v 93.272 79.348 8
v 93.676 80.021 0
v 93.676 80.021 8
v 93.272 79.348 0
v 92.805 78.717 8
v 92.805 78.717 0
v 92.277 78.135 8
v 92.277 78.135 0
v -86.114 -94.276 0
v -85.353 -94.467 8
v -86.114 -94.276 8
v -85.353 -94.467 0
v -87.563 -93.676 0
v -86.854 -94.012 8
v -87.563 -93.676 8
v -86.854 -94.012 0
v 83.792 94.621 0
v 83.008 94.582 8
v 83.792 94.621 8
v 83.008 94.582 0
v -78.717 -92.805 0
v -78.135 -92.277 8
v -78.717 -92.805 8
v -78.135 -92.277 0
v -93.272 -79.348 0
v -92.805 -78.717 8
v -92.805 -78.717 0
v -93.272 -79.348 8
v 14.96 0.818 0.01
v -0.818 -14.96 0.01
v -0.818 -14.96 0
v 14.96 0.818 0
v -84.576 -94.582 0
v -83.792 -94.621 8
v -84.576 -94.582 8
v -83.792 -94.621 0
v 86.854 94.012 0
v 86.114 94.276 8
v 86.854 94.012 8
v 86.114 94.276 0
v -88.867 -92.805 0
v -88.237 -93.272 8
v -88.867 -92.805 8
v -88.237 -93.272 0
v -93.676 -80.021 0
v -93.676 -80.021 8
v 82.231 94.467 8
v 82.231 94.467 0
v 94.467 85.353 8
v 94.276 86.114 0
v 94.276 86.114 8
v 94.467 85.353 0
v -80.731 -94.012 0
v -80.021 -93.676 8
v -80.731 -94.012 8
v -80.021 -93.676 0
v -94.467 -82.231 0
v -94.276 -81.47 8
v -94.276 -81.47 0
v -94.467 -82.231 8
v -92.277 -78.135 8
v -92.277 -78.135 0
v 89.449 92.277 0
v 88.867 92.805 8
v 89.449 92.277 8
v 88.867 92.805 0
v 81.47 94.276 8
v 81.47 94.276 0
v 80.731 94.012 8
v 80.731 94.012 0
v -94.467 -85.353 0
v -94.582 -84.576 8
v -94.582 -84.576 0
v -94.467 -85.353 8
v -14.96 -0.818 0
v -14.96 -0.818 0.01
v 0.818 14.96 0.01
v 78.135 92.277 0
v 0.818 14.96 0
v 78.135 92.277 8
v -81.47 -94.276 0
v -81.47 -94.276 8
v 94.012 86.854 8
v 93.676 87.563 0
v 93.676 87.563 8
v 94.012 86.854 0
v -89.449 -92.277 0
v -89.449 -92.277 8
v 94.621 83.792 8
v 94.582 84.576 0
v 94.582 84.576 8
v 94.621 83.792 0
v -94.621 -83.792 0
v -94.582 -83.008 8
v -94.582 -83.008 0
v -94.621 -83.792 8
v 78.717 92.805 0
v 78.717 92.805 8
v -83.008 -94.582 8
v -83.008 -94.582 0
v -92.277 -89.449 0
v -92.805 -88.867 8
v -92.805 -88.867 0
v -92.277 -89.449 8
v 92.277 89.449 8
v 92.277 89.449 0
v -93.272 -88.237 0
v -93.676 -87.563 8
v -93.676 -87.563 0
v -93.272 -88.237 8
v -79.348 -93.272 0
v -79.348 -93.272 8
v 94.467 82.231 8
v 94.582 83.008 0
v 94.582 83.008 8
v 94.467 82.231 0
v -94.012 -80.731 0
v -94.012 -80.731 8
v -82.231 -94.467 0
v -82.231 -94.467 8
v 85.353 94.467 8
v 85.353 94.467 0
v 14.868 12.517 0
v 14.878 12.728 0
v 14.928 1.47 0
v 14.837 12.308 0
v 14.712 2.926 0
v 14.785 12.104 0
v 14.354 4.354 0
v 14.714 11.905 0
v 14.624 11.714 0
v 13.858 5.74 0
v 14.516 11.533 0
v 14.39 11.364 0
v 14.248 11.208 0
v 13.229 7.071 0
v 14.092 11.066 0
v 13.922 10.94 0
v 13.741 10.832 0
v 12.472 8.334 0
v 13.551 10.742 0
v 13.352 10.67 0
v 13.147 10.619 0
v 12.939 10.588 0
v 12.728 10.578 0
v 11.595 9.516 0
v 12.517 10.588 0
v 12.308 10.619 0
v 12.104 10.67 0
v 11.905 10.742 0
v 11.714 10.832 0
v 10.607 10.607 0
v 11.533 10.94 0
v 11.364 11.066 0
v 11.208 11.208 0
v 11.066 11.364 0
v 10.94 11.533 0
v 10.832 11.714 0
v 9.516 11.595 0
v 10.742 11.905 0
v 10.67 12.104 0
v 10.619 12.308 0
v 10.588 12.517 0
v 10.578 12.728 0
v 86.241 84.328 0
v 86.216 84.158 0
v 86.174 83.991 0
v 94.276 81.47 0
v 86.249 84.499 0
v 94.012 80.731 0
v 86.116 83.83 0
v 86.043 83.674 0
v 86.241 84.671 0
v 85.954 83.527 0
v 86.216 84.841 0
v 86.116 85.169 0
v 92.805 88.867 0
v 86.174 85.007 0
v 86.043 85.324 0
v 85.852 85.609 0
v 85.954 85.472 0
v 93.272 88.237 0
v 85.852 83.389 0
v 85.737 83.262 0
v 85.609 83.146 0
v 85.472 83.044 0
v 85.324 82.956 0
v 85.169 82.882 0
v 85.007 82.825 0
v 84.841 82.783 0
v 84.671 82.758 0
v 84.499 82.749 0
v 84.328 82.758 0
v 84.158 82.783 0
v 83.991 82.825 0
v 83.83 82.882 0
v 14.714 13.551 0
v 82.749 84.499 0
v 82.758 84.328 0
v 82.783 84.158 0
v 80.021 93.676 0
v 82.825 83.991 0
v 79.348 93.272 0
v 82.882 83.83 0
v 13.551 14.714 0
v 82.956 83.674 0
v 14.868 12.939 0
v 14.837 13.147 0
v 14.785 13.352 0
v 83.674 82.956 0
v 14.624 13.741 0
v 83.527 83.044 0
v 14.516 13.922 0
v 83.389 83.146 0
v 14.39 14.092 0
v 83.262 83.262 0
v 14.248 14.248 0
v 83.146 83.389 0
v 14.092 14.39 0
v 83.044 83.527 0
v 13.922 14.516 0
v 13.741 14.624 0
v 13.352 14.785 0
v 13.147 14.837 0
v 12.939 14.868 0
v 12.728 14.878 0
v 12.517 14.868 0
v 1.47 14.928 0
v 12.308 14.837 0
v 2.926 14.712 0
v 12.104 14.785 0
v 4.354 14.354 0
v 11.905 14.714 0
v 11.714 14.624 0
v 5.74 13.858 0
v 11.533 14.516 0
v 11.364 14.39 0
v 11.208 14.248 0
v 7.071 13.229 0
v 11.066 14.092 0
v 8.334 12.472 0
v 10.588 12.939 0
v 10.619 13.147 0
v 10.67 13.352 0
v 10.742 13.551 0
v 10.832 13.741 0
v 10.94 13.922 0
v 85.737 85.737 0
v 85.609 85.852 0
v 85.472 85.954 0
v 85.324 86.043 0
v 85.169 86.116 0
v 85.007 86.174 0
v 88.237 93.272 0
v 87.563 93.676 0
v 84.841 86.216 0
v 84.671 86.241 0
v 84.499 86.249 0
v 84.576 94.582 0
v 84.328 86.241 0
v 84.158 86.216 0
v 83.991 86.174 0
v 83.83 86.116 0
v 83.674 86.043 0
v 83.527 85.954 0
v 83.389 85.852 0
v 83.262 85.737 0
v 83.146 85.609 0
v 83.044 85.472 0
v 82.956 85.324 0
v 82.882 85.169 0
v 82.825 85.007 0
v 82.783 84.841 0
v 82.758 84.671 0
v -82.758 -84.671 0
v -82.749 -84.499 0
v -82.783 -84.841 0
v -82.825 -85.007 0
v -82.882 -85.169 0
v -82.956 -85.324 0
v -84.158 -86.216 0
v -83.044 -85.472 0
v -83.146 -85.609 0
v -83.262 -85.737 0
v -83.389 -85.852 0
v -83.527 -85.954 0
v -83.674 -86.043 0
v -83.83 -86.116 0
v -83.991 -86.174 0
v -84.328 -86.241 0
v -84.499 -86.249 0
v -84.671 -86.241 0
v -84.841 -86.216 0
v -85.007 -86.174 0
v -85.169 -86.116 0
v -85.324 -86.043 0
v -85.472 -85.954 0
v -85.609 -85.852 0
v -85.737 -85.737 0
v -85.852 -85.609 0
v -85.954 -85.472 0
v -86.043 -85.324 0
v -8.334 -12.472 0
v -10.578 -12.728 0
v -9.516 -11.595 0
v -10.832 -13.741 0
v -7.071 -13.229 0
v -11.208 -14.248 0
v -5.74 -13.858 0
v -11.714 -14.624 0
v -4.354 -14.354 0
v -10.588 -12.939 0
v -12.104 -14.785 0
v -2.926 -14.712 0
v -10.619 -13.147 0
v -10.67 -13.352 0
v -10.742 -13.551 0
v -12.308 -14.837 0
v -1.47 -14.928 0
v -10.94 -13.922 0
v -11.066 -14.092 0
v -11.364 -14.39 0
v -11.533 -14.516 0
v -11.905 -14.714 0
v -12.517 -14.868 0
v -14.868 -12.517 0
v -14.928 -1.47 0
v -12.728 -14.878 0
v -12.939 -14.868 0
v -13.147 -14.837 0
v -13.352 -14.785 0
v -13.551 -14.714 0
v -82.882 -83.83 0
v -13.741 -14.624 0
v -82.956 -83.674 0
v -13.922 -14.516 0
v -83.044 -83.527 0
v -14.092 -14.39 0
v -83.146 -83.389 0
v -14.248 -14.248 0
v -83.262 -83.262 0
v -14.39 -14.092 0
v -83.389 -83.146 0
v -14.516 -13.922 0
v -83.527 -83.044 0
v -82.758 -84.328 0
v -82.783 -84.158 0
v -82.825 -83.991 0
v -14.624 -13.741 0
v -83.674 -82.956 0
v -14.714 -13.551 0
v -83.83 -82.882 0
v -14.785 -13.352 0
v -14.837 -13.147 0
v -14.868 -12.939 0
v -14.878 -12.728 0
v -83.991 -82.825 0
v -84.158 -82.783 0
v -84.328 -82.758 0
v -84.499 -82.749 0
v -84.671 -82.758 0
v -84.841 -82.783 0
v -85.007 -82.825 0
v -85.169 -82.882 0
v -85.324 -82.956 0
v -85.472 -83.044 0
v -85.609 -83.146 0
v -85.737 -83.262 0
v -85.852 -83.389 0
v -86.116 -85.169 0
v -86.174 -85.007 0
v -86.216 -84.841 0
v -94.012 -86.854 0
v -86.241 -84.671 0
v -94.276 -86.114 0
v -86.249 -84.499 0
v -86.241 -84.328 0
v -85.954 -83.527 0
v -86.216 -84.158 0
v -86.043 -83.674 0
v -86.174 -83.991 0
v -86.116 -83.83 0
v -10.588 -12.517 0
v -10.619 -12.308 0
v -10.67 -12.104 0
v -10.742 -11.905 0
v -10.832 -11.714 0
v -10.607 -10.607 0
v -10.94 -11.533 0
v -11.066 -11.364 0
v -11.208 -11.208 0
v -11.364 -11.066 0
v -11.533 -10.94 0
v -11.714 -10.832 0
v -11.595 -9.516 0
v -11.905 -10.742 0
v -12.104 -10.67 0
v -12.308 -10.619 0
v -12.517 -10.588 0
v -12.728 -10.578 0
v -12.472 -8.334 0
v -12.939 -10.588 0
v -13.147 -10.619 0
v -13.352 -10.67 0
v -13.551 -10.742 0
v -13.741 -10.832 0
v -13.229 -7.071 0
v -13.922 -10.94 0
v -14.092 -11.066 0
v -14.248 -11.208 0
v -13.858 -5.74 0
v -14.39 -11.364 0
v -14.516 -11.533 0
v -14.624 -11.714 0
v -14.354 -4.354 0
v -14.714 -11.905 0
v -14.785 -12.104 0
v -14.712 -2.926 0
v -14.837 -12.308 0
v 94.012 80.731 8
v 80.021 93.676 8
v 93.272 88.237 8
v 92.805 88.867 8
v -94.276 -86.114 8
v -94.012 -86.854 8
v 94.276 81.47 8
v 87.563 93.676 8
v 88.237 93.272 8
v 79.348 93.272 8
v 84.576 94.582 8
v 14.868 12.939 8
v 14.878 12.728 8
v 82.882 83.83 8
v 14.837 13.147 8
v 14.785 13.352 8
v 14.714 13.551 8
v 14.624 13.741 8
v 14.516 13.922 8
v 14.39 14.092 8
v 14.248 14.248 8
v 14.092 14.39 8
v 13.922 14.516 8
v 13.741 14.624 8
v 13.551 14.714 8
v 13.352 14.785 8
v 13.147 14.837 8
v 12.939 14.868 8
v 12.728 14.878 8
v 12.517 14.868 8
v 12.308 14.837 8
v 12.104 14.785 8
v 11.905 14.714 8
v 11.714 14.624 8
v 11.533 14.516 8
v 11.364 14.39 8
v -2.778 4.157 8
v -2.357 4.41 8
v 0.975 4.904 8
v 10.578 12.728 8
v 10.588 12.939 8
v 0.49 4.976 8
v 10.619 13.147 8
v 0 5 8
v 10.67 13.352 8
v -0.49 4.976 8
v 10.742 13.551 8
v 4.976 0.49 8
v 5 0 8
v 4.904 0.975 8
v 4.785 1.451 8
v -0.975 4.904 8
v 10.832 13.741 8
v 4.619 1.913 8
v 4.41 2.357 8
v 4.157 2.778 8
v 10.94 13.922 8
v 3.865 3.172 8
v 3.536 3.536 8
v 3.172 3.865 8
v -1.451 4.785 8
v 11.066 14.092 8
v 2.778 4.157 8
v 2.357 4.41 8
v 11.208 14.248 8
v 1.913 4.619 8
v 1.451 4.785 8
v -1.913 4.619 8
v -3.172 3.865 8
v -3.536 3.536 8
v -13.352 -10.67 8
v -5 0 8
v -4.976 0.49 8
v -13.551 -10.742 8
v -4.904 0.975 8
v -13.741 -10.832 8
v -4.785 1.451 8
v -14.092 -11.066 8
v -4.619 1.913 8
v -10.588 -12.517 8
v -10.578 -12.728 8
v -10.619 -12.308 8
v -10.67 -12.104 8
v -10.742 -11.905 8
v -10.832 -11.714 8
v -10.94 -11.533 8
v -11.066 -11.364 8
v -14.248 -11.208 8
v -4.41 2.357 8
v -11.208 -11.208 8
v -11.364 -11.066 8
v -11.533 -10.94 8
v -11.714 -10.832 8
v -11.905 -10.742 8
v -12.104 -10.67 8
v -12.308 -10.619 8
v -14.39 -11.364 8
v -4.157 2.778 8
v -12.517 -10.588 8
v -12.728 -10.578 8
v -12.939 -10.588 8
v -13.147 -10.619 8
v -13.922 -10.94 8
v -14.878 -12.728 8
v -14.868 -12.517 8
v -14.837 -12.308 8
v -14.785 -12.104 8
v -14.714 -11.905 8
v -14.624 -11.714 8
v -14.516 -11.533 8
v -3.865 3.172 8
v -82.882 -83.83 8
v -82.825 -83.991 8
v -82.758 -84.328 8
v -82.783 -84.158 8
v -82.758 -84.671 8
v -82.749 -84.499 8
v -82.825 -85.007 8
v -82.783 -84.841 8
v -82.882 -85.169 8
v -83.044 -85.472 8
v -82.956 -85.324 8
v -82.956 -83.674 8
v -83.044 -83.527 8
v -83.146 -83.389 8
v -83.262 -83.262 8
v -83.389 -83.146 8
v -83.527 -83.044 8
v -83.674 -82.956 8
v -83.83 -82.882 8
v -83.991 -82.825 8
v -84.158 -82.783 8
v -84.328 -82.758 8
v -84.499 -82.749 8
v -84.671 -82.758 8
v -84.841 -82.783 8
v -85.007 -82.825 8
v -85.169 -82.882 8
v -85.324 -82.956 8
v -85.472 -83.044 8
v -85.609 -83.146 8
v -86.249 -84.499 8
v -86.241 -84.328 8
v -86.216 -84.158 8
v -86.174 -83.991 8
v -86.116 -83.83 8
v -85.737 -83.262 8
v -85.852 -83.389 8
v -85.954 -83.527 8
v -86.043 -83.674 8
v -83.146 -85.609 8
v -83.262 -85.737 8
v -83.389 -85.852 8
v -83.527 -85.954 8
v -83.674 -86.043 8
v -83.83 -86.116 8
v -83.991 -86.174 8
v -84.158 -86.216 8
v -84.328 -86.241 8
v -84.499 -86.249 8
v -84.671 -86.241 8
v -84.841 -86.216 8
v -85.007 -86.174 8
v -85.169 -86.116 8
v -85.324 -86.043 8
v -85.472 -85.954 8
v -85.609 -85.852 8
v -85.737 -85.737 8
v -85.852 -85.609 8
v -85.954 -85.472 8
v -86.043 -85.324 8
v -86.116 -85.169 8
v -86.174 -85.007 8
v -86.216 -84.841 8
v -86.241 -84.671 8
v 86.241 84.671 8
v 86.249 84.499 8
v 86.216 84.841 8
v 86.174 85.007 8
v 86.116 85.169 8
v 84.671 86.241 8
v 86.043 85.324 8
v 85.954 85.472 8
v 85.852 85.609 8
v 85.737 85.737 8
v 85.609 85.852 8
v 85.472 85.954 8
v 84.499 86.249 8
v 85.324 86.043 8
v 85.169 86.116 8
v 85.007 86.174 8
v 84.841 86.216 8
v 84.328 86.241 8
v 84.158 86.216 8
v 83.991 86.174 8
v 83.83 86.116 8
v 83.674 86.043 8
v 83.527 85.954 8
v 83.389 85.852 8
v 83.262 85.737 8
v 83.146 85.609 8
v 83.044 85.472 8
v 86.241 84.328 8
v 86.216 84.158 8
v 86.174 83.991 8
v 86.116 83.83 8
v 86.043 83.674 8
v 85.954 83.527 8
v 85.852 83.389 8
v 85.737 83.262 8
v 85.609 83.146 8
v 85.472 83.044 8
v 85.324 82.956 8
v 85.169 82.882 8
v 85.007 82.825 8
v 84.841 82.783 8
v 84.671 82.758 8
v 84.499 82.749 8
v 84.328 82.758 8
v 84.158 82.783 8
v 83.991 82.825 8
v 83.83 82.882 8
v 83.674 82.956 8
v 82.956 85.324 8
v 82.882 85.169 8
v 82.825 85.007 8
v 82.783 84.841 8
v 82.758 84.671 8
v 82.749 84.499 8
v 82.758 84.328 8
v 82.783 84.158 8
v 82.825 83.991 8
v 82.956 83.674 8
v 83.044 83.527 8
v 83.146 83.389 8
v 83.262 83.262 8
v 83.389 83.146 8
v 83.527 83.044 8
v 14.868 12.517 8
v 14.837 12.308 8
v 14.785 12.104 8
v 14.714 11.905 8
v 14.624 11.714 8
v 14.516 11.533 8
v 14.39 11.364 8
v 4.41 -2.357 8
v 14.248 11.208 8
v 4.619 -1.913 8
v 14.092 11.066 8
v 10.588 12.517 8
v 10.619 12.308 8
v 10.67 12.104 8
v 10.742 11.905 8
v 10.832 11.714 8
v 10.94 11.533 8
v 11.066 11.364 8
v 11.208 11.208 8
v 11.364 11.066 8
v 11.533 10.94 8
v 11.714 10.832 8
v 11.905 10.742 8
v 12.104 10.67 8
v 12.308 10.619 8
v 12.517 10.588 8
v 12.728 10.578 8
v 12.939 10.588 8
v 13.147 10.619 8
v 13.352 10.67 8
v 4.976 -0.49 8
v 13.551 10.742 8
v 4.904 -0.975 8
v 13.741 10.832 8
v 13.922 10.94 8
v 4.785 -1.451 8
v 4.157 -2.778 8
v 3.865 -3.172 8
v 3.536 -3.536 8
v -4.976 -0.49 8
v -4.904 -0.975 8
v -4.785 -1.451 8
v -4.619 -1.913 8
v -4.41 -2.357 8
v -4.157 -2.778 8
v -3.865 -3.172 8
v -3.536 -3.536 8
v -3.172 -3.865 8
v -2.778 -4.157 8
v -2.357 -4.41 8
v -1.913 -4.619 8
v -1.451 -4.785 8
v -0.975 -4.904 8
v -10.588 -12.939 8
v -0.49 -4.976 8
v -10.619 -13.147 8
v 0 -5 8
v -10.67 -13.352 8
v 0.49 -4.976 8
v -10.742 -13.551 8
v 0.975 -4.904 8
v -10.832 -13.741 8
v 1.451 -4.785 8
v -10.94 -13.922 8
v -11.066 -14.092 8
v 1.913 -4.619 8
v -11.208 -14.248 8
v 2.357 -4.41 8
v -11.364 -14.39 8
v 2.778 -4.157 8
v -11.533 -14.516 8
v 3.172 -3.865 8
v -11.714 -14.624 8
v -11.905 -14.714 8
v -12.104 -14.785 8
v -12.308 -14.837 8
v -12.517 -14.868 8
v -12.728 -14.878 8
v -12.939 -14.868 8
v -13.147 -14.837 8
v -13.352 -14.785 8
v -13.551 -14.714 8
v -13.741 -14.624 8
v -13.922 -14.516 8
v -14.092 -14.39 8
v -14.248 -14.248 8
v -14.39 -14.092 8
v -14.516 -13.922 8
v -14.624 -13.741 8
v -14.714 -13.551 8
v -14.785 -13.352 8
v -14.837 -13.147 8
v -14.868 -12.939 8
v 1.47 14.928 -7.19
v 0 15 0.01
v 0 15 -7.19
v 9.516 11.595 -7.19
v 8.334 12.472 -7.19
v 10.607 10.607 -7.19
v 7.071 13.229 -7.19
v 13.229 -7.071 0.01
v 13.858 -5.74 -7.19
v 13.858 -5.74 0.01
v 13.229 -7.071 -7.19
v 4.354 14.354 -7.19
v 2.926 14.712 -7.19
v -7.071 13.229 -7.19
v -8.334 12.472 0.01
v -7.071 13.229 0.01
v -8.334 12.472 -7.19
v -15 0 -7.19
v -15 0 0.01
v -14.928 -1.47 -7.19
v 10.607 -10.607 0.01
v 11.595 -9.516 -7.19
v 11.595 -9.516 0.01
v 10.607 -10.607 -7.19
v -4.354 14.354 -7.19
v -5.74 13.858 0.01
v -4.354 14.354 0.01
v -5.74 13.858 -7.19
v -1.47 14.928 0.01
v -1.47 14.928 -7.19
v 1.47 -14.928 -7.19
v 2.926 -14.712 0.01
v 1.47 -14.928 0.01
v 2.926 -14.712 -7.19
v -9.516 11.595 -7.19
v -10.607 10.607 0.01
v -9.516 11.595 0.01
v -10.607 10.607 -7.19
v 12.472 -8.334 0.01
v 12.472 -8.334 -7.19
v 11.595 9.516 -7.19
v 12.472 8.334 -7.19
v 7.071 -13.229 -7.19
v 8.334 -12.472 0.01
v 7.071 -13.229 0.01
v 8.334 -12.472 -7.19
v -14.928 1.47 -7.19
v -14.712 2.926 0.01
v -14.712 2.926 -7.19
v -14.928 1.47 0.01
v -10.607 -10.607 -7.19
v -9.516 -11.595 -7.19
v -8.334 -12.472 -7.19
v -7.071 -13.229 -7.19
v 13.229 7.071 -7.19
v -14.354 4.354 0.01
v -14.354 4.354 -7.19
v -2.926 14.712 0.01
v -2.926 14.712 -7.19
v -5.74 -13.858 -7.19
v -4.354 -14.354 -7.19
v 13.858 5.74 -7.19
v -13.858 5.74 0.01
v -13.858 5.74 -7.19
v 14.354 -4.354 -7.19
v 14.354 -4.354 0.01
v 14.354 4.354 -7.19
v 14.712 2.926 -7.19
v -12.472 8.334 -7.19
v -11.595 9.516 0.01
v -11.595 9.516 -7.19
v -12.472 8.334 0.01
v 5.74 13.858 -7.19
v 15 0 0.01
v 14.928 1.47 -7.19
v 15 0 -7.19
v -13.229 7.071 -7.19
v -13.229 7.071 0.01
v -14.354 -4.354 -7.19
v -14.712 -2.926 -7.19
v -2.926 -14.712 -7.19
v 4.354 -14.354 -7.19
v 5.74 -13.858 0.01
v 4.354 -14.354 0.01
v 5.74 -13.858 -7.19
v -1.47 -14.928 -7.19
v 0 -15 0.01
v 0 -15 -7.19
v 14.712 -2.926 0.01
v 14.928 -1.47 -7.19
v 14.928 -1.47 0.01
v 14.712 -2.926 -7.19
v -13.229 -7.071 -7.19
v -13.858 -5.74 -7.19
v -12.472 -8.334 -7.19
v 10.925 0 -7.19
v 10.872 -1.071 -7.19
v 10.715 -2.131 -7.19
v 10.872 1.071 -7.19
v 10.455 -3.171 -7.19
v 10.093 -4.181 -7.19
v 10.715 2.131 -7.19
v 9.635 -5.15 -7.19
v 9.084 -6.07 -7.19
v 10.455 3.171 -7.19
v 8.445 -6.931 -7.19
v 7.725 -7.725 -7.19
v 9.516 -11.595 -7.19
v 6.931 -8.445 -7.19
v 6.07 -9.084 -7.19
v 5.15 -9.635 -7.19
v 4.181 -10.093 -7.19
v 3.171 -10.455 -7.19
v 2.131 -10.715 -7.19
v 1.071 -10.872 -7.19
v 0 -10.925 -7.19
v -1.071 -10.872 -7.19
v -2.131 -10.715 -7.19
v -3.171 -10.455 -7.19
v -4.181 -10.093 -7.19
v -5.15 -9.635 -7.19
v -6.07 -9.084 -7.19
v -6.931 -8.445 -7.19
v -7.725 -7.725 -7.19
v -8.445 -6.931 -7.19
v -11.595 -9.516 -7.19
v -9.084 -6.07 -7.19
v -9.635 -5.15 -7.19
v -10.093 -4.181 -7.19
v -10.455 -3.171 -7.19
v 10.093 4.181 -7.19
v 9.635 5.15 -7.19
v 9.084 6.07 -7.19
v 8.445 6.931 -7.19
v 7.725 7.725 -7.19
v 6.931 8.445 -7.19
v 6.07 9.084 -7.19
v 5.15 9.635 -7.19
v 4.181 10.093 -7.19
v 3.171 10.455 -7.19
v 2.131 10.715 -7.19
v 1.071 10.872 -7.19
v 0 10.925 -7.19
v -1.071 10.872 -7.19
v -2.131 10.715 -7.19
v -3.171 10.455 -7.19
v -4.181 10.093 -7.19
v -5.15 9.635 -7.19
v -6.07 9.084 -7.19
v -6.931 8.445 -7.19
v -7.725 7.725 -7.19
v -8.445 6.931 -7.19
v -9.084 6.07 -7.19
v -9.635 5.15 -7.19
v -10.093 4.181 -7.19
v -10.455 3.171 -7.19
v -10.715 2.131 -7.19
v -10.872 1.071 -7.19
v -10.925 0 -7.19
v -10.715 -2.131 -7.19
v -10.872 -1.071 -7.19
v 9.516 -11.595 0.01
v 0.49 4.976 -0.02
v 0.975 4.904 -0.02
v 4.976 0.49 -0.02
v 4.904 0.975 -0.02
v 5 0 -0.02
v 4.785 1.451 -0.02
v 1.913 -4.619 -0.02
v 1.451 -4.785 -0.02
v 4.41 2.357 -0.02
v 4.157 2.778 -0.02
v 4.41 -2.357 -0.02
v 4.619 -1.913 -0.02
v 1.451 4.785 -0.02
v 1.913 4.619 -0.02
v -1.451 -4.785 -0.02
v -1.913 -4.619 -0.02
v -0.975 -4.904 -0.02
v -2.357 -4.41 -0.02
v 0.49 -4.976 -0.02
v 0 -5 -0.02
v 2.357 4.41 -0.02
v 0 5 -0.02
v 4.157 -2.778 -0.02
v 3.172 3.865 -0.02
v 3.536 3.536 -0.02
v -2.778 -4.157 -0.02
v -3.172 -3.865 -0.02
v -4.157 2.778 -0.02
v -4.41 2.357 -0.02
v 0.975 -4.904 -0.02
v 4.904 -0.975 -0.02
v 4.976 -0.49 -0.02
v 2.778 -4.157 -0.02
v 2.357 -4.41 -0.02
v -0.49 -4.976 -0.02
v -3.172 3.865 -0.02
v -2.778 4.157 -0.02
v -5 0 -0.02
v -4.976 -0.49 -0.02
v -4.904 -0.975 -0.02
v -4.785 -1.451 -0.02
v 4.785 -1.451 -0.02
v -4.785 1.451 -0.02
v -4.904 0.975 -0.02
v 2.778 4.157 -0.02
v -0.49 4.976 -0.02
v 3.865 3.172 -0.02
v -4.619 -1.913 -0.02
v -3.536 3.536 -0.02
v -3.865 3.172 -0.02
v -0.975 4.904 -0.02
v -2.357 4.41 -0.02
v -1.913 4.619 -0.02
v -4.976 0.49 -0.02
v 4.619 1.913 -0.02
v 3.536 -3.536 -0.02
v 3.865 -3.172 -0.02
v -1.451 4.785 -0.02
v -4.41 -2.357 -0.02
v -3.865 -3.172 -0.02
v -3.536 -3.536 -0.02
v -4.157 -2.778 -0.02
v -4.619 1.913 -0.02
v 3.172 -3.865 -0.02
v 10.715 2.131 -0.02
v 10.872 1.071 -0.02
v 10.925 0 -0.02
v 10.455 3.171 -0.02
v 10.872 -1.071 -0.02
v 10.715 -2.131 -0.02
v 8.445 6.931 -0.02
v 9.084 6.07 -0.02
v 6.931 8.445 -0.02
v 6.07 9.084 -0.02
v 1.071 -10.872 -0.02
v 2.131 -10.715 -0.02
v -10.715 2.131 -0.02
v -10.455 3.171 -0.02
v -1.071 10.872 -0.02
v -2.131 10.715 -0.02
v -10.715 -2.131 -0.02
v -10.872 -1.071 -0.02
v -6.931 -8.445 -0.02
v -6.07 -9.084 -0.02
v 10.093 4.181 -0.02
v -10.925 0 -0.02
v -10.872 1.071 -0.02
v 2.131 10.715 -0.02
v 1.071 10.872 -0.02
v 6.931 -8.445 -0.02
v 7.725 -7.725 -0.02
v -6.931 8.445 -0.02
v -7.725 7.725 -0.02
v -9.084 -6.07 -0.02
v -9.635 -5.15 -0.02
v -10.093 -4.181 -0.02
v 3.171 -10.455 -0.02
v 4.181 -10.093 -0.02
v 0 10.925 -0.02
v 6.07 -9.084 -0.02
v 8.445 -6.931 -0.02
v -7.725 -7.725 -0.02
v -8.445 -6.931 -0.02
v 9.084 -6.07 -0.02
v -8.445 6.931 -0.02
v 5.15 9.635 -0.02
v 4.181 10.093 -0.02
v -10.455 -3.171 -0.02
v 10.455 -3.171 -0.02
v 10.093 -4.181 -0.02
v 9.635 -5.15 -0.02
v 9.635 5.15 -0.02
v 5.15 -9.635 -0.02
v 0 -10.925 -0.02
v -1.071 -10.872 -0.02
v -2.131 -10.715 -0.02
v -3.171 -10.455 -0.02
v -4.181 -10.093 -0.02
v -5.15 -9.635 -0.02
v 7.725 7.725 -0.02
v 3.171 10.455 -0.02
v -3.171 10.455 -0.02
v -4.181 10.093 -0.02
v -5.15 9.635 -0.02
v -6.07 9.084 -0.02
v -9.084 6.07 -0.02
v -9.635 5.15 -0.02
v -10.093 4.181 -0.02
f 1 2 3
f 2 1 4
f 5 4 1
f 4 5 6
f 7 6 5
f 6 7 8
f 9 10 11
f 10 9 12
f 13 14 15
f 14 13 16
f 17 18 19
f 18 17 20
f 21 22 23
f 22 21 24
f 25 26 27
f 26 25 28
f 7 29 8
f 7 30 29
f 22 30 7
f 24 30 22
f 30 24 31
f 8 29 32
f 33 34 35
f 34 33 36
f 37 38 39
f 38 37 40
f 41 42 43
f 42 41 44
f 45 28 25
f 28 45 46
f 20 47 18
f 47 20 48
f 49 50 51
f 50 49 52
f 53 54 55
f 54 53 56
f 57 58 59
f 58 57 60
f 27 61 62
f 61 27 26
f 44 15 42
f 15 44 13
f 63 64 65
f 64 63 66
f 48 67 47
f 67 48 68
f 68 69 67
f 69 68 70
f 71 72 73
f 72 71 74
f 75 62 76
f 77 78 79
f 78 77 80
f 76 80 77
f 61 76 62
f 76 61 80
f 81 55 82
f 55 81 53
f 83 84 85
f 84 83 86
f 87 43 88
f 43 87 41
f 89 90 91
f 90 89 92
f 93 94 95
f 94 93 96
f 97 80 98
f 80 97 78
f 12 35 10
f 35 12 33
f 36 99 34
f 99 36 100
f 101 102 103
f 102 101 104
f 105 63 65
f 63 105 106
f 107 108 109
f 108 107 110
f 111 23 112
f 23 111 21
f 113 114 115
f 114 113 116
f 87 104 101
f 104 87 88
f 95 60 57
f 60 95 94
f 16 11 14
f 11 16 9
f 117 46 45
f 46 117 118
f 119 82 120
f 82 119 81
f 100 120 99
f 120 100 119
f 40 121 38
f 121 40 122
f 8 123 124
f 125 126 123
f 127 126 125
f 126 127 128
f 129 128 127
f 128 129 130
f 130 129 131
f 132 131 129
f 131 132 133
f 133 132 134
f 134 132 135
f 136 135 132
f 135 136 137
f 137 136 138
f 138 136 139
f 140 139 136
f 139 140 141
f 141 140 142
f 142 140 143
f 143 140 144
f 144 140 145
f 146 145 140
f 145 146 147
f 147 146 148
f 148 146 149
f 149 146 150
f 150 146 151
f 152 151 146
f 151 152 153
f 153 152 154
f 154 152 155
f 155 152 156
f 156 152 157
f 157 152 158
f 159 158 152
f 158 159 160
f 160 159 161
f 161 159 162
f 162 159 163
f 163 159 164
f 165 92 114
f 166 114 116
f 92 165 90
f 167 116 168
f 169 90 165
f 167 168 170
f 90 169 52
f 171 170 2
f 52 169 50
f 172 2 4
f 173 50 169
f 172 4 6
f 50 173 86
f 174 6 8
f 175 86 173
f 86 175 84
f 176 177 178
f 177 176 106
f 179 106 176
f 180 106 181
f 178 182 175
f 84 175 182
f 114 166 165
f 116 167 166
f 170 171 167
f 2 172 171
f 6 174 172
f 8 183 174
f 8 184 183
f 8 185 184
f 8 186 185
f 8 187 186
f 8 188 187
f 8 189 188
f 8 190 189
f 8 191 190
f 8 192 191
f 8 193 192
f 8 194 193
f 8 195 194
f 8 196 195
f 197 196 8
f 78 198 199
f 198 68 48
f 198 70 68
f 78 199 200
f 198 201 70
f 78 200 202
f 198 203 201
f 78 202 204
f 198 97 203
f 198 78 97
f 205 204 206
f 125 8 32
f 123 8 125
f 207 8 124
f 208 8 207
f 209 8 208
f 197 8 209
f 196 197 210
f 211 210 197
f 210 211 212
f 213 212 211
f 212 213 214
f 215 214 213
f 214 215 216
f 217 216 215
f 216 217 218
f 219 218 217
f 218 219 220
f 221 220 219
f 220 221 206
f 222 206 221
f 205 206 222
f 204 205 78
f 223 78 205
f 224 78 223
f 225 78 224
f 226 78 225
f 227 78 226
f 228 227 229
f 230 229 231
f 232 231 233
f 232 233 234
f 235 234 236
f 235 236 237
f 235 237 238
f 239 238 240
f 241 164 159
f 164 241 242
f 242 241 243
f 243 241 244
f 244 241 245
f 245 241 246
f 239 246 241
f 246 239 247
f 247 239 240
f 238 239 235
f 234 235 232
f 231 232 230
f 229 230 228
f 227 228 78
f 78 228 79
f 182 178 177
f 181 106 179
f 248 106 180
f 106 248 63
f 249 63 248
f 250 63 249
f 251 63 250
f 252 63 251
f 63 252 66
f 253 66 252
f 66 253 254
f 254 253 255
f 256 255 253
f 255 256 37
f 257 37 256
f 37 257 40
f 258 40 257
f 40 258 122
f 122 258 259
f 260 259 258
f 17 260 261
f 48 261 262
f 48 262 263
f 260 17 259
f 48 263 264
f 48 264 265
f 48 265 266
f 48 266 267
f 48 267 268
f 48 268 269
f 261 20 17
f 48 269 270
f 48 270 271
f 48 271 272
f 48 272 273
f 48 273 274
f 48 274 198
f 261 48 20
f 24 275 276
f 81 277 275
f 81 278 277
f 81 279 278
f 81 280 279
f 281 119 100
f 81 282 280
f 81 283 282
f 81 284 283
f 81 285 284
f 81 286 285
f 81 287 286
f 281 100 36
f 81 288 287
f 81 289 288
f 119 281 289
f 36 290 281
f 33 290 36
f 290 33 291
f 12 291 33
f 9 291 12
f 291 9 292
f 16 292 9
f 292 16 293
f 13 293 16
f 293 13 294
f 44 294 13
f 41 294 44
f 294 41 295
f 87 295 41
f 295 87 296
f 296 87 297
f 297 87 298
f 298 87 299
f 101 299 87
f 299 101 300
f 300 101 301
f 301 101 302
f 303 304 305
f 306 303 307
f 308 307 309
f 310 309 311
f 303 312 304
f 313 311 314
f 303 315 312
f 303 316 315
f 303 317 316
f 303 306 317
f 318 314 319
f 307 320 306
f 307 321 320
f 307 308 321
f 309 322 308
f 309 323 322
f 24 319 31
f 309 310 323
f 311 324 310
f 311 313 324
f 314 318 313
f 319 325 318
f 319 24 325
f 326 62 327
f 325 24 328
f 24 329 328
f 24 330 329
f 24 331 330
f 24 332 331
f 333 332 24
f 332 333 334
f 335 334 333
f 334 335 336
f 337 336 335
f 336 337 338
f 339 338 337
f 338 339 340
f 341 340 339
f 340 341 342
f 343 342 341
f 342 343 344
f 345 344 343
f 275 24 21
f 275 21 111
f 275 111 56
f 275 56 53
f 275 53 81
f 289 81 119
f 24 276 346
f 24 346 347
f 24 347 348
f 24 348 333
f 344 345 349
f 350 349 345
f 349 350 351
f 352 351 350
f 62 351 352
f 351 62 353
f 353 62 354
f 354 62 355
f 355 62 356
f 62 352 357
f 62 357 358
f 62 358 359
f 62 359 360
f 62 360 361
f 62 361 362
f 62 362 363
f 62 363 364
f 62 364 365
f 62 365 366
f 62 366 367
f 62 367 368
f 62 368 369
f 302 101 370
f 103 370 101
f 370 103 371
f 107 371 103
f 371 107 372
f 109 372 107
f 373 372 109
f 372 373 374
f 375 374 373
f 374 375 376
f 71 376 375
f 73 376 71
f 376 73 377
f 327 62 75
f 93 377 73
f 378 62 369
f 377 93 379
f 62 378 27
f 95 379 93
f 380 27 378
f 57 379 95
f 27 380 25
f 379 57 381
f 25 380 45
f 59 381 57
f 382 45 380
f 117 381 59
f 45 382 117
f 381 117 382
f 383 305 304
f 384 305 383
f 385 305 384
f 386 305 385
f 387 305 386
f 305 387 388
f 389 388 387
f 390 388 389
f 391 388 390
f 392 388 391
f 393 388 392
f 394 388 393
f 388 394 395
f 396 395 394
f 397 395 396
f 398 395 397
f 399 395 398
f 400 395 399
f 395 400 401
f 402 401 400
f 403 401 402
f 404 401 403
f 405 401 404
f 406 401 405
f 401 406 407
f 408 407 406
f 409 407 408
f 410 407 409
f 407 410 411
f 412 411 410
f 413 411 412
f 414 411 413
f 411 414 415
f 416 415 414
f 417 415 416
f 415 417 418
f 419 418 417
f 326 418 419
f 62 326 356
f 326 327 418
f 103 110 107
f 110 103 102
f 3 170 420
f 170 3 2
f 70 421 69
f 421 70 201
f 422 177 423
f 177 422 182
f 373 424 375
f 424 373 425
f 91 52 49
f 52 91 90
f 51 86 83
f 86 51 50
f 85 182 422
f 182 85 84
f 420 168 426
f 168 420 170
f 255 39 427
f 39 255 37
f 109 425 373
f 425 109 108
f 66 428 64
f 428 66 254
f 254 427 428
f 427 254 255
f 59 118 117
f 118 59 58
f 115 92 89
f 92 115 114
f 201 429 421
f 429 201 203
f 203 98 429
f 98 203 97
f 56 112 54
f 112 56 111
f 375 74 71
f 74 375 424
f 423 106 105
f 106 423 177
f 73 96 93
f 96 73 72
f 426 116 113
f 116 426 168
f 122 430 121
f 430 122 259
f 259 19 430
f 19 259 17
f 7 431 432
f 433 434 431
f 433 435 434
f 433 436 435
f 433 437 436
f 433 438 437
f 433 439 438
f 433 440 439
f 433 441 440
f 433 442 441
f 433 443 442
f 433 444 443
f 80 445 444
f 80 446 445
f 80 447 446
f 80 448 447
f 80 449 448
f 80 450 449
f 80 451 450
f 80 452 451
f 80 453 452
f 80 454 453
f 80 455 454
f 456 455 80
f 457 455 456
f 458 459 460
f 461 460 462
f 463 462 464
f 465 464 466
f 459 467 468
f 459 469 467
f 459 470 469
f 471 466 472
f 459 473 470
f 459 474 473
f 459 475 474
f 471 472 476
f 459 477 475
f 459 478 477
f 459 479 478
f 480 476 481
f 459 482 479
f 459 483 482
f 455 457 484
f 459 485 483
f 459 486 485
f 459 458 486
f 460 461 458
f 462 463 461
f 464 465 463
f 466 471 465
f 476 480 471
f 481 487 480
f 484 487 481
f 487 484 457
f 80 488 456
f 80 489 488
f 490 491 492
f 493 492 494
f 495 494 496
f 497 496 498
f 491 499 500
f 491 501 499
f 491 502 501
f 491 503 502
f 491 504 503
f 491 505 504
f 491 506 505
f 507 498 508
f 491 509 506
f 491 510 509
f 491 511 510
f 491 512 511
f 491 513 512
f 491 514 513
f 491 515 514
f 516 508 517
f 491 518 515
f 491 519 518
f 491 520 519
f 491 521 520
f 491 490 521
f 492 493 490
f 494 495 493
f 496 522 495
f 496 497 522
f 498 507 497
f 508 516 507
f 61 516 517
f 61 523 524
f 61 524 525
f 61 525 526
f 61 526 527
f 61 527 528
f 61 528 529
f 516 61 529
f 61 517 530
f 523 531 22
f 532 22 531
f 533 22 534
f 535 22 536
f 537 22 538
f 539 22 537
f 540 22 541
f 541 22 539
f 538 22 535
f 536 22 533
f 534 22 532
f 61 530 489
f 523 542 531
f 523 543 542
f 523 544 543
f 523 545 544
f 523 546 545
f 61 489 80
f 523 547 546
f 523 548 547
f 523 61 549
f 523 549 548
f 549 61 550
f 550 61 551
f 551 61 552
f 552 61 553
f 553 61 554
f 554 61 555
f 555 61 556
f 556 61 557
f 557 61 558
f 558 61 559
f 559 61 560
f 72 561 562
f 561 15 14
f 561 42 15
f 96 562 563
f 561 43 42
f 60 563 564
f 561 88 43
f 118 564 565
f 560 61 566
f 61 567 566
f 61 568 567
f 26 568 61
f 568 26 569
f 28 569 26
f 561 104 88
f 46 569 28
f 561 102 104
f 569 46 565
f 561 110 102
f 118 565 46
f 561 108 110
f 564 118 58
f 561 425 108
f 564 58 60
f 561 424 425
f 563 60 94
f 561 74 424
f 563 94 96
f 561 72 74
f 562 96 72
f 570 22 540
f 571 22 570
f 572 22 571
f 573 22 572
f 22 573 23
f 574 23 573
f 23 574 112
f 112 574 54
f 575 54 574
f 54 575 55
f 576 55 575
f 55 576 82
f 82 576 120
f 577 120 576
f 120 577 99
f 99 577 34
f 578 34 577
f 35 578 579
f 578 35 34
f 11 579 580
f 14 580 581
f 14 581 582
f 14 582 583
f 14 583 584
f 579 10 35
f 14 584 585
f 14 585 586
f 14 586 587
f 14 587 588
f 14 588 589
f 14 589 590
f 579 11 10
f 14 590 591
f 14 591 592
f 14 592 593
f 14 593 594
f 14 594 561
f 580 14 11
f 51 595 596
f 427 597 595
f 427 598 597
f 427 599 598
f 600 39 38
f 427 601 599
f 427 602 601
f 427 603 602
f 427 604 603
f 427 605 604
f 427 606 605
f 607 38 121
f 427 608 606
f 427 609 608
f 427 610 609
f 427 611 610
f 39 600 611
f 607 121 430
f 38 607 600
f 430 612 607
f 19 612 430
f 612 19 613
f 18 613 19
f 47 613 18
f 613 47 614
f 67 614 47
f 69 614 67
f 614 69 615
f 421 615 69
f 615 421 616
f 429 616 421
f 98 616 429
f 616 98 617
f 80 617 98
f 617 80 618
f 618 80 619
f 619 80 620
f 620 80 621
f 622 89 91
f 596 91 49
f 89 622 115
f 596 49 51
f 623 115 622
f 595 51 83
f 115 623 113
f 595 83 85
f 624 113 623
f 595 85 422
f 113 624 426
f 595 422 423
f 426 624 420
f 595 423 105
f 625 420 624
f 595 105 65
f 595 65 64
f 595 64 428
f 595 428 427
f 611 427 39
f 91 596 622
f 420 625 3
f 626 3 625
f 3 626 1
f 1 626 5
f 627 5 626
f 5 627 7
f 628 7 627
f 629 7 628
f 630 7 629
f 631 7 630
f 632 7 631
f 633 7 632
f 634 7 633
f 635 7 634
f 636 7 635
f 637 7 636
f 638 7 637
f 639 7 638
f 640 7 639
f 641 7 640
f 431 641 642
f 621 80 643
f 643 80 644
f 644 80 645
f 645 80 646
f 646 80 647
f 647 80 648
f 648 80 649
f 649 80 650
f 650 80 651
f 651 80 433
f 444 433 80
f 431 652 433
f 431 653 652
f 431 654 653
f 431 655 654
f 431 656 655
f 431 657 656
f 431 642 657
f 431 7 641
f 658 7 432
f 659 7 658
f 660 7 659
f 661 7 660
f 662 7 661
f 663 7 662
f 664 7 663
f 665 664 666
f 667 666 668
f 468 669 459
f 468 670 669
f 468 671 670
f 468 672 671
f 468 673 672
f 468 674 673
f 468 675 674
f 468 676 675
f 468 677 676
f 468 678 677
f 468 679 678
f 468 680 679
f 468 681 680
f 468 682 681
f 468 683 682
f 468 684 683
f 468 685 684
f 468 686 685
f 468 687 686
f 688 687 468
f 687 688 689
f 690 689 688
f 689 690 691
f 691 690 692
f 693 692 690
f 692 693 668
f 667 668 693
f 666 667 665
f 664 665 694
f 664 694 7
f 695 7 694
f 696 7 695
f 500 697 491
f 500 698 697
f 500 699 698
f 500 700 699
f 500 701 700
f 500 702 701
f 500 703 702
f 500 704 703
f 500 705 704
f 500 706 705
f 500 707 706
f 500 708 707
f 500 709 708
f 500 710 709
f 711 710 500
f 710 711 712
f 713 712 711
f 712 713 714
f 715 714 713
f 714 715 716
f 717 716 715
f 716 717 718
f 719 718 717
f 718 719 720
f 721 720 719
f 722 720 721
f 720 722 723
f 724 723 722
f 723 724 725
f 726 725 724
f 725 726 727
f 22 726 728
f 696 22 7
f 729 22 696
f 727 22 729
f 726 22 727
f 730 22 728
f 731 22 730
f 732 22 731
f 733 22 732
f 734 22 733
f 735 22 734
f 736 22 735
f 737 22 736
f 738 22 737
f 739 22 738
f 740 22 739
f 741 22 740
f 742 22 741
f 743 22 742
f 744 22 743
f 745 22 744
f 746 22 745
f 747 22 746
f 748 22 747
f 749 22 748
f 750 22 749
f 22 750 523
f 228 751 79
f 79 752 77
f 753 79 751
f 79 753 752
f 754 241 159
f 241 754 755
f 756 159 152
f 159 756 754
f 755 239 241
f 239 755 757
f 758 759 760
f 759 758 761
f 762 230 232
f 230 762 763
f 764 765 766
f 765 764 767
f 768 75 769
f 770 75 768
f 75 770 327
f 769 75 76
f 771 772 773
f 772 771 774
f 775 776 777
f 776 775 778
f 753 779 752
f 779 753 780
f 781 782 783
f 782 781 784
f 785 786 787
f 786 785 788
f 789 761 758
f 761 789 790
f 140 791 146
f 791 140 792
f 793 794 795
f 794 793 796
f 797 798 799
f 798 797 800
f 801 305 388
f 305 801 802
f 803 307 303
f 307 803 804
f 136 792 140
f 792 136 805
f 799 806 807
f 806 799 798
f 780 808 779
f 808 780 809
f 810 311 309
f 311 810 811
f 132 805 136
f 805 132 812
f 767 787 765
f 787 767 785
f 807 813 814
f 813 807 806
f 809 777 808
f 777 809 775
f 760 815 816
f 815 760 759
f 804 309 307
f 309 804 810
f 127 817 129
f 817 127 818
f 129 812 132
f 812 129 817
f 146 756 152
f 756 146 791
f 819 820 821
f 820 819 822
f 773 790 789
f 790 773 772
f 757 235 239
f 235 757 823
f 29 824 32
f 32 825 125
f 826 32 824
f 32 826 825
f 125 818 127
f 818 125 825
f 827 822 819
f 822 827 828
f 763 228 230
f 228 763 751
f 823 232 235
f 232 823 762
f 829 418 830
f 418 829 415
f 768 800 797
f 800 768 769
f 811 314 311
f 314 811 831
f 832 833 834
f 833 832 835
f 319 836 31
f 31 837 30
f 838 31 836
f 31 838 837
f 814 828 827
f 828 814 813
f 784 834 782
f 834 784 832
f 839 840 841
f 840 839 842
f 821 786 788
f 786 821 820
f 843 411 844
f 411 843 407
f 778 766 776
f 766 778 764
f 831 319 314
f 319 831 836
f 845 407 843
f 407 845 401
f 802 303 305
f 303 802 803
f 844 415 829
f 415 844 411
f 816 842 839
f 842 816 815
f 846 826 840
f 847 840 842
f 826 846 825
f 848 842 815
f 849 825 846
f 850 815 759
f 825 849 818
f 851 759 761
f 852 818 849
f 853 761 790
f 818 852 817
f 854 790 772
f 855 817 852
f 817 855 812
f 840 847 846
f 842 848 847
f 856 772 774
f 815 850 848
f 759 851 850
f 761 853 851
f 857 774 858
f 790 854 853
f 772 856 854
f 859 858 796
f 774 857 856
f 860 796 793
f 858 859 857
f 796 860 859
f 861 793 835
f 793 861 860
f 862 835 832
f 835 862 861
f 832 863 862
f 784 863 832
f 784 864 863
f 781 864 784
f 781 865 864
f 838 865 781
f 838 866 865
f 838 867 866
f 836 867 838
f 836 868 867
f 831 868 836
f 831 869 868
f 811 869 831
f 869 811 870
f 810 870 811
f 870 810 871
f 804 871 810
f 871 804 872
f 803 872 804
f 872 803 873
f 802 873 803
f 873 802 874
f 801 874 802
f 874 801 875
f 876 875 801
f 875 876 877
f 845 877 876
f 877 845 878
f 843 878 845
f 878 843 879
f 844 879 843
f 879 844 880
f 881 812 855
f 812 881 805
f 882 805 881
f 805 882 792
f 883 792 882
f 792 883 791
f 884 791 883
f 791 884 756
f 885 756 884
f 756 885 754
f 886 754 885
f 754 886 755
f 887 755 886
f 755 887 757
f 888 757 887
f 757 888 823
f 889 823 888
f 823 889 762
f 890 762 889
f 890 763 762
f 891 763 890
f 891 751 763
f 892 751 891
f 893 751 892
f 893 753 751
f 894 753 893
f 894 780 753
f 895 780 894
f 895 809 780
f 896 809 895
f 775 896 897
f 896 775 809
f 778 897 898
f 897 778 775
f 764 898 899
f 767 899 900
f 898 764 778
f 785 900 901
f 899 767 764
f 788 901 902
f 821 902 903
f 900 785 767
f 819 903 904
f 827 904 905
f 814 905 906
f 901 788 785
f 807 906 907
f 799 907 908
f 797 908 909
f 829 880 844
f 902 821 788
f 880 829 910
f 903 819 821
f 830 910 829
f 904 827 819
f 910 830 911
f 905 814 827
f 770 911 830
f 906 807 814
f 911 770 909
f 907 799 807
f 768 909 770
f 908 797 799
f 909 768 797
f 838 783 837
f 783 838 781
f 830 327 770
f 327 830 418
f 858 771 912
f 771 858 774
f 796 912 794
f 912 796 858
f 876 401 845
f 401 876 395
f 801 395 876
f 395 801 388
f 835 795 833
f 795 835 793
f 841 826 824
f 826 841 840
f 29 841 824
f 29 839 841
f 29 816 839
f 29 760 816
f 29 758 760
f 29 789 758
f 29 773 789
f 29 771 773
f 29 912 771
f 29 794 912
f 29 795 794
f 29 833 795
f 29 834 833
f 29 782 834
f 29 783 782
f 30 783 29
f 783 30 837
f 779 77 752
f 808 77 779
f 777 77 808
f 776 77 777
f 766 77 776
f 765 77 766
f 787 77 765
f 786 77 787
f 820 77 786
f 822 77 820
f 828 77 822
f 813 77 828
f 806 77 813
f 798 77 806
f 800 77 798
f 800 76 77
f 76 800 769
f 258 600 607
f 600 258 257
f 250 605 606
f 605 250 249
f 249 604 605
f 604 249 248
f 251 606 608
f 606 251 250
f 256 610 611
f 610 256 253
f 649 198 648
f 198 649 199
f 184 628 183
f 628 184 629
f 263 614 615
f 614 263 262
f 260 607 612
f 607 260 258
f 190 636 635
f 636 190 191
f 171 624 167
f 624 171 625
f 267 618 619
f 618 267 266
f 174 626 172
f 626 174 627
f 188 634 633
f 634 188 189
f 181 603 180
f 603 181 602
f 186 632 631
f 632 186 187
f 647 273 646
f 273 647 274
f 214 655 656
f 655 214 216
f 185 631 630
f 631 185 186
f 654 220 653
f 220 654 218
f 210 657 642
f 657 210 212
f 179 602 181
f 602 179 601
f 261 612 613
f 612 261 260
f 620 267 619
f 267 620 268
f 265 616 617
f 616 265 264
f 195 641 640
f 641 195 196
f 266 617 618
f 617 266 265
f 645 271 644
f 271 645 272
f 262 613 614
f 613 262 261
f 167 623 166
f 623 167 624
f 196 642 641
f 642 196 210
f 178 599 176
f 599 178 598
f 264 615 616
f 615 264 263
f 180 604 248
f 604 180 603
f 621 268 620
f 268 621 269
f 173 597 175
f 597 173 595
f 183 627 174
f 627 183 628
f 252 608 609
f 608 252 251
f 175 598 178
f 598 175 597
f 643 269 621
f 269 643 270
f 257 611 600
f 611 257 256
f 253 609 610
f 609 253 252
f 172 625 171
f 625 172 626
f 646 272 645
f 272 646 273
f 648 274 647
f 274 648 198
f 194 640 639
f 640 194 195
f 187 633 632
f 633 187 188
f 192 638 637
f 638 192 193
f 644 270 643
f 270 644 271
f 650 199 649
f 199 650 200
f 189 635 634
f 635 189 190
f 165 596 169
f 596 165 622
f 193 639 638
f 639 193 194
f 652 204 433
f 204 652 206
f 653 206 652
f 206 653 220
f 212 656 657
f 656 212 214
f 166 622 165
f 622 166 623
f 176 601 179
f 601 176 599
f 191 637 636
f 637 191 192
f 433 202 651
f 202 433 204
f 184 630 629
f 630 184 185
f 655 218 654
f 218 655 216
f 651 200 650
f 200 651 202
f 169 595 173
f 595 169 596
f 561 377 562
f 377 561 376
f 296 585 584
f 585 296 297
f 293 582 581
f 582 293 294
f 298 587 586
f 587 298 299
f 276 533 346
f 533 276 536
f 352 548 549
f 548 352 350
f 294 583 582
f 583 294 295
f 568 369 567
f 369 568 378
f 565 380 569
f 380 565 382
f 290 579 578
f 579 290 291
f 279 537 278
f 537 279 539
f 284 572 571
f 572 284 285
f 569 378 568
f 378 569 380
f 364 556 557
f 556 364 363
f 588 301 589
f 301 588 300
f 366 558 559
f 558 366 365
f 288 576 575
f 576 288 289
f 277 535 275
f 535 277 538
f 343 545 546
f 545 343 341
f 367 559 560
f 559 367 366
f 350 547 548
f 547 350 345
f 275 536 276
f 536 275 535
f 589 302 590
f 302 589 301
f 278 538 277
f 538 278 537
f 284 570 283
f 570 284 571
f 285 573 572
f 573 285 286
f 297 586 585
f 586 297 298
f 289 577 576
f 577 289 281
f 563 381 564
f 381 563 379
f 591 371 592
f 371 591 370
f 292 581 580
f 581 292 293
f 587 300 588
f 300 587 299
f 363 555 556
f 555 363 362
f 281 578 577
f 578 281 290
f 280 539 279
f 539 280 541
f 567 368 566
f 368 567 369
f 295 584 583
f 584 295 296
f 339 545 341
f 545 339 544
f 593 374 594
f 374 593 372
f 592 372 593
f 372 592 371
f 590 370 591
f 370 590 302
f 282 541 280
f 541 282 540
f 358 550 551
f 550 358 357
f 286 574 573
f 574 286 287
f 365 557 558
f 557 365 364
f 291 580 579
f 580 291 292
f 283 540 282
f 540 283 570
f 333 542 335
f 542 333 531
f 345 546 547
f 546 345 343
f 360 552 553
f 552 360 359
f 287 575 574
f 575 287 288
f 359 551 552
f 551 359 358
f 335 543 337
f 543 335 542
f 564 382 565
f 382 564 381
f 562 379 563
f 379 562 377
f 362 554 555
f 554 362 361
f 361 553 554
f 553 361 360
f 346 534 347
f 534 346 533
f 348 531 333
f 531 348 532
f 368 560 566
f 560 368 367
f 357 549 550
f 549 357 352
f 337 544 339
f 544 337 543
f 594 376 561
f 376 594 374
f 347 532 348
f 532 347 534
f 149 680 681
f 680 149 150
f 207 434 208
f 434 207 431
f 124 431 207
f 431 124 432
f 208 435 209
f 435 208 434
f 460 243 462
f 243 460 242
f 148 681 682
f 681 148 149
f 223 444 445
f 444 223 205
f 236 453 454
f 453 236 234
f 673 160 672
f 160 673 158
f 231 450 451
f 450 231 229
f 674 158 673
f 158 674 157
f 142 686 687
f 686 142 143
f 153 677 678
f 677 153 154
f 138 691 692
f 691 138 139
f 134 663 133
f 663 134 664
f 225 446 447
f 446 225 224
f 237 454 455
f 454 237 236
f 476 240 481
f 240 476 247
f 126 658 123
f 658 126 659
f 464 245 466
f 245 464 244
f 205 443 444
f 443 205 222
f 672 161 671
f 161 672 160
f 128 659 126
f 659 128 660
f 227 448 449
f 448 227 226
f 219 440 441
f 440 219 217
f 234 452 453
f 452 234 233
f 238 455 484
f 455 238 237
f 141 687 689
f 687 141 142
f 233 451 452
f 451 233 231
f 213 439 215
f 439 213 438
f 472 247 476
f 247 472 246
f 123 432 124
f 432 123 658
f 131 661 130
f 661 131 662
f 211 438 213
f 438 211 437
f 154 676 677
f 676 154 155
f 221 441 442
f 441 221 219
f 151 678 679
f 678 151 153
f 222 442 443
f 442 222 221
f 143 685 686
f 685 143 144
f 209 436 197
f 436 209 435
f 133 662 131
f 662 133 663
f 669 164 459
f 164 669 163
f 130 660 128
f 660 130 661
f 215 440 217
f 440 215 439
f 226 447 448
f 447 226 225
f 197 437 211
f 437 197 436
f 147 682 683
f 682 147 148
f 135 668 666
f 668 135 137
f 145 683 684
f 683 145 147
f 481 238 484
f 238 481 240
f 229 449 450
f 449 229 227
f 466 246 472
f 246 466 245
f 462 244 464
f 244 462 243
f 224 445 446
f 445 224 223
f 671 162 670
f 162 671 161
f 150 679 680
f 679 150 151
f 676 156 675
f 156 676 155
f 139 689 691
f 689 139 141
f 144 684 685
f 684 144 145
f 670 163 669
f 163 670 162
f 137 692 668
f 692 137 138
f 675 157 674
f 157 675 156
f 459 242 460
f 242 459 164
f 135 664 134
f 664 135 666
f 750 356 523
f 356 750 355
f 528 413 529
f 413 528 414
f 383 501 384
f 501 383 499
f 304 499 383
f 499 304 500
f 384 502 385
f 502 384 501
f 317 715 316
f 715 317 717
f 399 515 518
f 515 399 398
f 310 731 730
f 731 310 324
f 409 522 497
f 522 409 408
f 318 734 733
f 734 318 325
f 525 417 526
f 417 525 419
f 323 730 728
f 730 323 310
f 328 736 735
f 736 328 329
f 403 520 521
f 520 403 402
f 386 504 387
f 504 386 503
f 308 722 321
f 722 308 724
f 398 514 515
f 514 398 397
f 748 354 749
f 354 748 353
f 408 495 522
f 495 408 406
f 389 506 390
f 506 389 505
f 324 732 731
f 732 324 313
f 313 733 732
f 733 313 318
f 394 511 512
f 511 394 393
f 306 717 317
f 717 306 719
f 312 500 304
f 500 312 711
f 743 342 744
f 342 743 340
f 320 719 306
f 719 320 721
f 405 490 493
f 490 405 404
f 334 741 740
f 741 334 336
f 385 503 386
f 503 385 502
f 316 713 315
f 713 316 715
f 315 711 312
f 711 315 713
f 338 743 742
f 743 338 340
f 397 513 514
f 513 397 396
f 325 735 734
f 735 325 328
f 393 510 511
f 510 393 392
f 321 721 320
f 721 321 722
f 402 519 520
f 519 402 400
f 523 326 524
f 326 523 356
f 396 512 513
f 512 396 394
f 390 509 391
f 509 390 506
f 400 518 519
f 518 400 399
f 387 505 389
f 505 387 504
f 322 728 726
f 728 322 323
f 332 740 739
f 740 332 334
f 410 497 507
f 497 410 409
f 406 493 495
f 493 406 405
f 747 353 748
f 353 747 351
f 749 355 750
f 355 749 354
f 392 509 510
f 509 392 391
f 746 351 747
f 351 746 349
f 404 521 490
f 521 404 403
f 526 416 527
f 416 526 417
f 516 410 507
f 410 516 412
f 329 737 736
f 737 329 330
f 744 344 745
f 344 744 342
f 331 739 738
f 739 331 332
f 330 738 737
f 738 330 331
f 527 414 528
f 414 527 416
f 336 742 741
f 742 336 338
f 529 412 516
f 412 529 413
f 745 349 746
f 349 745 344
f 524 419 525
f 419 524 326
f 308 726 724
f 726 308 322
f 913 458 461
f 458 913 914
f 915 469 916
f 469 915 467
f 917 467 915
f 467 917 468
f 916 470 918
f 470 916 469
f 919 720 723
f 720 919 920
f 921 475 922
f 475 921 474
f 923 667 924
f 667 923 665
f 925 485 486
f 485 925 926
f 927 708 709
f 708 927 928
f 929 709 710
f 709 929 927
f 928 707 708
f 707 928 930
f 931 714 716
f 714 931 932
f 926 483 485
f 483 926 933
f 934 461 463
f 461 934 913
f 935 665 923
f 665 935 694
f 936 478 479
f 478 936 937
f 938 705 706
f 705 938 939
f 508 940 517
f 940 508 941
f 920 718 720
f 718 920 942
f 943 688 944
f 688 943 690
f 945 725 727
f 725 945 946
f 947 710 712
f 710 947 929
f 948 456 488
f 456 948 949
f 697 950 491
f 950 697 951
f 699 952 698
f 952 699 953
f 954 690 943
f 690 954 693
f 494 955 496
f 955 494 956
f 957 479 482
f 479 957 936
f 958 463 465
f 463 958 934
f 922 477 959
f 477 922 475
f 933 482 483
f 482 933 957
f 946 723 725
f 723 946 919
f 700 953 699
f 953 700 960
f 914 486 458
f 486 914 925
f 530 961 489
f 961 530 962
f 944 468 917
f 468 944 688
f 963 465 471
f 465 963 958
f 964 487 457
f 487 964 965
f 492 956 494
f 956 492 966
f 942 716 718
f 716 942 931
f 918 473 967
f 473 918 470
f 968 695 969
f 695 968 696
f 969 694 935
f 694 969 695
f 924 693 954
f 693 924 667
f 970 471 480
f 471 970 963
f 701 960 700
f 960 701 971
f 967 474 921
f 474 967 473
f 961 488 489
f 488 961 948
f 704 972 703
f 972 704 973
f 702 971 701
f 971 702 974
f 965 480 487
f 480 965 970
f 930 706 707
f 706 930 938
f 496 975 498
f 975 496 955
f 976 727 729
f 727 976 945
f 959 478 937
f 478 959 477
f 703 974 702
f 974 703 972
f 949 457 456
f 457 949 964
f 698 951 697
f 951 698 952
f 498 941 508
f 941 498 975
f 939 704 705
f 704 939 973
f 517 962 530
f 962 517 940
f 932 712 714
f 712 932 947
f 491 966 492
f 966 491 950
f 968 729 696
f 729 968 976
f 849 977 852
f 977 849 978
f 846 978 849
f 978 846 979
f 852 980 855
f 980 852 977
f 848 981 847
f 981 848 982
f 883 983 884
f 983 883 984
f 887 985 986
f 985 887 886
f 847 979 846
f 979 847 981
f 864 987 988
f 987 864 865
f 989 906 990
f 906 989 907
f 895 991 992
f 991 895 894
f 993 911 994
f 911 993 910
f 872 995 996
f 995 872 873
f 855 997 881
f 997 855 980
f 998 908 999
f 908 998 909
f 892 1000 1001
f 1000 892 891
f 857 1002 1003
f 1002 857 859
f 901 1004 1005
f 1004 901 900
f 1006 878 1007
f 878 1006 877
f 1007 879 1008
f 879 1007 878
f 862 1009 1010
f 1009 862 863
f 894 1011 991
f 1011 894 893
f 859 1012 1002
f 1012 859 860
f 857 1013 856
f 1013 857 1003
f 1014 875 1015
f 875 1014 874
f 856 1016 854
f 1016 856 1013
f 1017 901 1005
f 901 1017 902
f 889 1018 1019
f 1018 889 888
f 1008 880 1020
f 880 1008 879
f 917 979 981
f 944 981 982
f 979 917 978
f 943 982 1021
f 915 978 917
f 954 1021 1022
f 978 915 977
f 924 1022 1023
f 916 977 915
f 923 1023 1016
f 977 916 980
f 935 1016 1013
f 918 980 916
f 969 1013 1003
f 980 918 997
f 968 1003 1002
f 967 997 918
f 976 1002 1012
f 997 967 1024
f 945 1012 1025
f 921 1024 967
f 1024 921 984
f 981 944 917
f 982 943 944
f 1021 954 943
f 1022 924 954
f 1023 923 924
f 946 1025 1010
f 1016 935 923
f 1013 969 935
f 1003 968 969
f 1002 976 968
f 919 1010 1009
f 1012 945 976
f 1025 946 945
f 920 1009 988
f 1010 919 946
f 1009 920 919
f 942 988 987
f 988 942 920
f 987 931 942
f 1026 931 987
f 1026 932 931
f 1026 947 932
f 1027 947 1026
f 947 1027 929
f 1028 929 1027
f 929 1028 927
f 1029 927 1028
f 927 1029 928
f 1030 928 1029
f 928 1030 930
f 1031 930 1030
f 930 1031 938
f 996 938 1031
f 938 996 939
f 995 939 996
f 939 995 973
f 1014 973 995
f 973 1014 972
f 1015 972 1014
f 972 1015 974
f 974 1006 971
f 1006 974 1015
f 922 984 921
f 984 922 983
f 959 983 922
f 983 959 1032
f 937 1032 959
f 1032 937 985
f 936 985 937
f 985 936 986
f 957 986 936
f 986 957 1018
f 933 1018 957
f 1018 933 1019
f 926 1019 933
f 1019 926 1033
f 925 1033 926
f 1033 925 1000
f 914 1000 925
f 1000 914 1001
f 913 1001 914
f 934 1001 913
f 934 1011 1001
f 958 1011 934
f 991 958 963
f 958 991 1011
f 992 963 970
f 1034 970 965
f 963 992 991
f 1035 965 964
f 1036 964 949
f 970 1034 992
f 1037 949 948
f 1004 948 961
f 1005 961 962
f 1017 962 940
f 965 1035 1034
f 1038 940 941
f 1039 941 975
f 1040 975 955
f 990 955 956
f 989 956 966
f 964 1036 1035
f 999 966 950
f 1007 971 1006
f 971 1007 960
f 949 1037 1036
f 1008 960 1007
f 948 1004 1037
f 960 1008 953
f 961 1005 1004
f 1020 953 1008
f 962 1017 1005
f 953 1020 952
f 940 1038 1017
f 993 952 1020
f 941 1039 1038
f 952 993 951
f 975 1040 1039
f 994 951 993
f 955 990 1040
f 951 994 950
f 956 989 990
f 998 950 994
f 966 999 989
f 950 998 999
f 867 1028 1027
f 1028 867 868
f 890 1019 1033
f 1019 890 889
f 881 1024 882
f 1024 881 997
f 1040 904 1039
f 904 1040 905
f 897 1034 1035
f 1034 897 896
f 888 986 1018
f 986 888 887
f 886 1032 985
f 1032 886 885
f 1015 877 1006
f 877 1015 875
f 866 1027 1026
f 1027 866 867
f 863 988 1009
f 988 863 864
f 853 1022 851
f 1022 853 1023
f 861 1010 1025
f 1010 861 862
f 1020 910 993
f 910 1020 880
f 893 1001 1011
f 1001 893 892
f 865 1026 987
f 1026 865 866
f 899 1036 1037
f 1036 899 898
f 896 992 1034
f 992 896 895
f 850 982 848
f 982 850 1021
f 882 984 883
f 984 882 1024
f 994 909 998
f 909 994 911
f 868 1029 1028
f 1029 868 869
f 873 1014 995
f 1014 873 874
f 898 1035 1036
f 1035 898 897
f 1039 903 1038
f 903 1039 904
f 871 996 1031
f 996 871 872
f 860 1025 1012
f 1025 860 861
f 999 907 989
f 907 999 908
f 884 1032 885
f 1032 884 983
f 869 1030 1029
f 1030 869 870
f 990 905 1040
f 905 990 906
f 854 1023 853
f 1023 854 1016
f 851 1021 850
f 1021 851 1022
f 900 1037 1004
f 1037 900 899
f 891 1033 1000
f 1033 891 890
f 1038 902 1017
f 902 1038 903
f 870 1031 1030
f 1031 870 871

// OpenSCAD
// Gen-CX — front BEARING BRIDGE (bar endbell, 2026-10-10): a 608 boss on a 20 mm wide bar that spans the
// two frame rods at 45 deg and 45+180 deg (R = flange_bolt_r). The front bridge uses the rods at 45/225 deg, the rear
// bridge the rods at 135/315 deg, so the two bridges cross at 90 deg and the stator is held at 4 points.
// A bar instead of a full disc is what lets this big-ring kit fit ONE 410 mm plate. Print flat face DOWN (boss up, no supports).
// Brace holes (temporary M4 jack rods, R = brace_r) sit on the bar axis.
include <parameters.scad>;
$fn = 64;
bar_w = 20;
bar_len = 2 * (flange_bolt_r + 9);
module bar_2d() { offset(r=8) offset(delta=-8) square([bar_len, bar_w], center=true); }
difference() {
    rotate([0, 0, 45]) union() {
        linear_extrude(endbell_thick) bar_2d();
        translate([0, 0, -bearing_h + 0.01]) cylinder(d=30, h=bearing_h);
    }
    translate([0, 0, -bearing_h - 0.1]) cylinder(d=endbell_shaft_clear, h=50);
    translate([0, 0, -bearing_h - 0.02]) cylinder(d=bearing_d, h=bearing_h);
    for (s = [0, 180]) rotate([0, 0, 45 + s]) translate([flange_bolt_r, 0, -20]) cylinder(d=m3_clear, h=60);
    for (a = brace_angles) translate([brace_r*cos(a), brace_r*sin(a), -20]) cylinder(d=brace_d, h=50);
}
